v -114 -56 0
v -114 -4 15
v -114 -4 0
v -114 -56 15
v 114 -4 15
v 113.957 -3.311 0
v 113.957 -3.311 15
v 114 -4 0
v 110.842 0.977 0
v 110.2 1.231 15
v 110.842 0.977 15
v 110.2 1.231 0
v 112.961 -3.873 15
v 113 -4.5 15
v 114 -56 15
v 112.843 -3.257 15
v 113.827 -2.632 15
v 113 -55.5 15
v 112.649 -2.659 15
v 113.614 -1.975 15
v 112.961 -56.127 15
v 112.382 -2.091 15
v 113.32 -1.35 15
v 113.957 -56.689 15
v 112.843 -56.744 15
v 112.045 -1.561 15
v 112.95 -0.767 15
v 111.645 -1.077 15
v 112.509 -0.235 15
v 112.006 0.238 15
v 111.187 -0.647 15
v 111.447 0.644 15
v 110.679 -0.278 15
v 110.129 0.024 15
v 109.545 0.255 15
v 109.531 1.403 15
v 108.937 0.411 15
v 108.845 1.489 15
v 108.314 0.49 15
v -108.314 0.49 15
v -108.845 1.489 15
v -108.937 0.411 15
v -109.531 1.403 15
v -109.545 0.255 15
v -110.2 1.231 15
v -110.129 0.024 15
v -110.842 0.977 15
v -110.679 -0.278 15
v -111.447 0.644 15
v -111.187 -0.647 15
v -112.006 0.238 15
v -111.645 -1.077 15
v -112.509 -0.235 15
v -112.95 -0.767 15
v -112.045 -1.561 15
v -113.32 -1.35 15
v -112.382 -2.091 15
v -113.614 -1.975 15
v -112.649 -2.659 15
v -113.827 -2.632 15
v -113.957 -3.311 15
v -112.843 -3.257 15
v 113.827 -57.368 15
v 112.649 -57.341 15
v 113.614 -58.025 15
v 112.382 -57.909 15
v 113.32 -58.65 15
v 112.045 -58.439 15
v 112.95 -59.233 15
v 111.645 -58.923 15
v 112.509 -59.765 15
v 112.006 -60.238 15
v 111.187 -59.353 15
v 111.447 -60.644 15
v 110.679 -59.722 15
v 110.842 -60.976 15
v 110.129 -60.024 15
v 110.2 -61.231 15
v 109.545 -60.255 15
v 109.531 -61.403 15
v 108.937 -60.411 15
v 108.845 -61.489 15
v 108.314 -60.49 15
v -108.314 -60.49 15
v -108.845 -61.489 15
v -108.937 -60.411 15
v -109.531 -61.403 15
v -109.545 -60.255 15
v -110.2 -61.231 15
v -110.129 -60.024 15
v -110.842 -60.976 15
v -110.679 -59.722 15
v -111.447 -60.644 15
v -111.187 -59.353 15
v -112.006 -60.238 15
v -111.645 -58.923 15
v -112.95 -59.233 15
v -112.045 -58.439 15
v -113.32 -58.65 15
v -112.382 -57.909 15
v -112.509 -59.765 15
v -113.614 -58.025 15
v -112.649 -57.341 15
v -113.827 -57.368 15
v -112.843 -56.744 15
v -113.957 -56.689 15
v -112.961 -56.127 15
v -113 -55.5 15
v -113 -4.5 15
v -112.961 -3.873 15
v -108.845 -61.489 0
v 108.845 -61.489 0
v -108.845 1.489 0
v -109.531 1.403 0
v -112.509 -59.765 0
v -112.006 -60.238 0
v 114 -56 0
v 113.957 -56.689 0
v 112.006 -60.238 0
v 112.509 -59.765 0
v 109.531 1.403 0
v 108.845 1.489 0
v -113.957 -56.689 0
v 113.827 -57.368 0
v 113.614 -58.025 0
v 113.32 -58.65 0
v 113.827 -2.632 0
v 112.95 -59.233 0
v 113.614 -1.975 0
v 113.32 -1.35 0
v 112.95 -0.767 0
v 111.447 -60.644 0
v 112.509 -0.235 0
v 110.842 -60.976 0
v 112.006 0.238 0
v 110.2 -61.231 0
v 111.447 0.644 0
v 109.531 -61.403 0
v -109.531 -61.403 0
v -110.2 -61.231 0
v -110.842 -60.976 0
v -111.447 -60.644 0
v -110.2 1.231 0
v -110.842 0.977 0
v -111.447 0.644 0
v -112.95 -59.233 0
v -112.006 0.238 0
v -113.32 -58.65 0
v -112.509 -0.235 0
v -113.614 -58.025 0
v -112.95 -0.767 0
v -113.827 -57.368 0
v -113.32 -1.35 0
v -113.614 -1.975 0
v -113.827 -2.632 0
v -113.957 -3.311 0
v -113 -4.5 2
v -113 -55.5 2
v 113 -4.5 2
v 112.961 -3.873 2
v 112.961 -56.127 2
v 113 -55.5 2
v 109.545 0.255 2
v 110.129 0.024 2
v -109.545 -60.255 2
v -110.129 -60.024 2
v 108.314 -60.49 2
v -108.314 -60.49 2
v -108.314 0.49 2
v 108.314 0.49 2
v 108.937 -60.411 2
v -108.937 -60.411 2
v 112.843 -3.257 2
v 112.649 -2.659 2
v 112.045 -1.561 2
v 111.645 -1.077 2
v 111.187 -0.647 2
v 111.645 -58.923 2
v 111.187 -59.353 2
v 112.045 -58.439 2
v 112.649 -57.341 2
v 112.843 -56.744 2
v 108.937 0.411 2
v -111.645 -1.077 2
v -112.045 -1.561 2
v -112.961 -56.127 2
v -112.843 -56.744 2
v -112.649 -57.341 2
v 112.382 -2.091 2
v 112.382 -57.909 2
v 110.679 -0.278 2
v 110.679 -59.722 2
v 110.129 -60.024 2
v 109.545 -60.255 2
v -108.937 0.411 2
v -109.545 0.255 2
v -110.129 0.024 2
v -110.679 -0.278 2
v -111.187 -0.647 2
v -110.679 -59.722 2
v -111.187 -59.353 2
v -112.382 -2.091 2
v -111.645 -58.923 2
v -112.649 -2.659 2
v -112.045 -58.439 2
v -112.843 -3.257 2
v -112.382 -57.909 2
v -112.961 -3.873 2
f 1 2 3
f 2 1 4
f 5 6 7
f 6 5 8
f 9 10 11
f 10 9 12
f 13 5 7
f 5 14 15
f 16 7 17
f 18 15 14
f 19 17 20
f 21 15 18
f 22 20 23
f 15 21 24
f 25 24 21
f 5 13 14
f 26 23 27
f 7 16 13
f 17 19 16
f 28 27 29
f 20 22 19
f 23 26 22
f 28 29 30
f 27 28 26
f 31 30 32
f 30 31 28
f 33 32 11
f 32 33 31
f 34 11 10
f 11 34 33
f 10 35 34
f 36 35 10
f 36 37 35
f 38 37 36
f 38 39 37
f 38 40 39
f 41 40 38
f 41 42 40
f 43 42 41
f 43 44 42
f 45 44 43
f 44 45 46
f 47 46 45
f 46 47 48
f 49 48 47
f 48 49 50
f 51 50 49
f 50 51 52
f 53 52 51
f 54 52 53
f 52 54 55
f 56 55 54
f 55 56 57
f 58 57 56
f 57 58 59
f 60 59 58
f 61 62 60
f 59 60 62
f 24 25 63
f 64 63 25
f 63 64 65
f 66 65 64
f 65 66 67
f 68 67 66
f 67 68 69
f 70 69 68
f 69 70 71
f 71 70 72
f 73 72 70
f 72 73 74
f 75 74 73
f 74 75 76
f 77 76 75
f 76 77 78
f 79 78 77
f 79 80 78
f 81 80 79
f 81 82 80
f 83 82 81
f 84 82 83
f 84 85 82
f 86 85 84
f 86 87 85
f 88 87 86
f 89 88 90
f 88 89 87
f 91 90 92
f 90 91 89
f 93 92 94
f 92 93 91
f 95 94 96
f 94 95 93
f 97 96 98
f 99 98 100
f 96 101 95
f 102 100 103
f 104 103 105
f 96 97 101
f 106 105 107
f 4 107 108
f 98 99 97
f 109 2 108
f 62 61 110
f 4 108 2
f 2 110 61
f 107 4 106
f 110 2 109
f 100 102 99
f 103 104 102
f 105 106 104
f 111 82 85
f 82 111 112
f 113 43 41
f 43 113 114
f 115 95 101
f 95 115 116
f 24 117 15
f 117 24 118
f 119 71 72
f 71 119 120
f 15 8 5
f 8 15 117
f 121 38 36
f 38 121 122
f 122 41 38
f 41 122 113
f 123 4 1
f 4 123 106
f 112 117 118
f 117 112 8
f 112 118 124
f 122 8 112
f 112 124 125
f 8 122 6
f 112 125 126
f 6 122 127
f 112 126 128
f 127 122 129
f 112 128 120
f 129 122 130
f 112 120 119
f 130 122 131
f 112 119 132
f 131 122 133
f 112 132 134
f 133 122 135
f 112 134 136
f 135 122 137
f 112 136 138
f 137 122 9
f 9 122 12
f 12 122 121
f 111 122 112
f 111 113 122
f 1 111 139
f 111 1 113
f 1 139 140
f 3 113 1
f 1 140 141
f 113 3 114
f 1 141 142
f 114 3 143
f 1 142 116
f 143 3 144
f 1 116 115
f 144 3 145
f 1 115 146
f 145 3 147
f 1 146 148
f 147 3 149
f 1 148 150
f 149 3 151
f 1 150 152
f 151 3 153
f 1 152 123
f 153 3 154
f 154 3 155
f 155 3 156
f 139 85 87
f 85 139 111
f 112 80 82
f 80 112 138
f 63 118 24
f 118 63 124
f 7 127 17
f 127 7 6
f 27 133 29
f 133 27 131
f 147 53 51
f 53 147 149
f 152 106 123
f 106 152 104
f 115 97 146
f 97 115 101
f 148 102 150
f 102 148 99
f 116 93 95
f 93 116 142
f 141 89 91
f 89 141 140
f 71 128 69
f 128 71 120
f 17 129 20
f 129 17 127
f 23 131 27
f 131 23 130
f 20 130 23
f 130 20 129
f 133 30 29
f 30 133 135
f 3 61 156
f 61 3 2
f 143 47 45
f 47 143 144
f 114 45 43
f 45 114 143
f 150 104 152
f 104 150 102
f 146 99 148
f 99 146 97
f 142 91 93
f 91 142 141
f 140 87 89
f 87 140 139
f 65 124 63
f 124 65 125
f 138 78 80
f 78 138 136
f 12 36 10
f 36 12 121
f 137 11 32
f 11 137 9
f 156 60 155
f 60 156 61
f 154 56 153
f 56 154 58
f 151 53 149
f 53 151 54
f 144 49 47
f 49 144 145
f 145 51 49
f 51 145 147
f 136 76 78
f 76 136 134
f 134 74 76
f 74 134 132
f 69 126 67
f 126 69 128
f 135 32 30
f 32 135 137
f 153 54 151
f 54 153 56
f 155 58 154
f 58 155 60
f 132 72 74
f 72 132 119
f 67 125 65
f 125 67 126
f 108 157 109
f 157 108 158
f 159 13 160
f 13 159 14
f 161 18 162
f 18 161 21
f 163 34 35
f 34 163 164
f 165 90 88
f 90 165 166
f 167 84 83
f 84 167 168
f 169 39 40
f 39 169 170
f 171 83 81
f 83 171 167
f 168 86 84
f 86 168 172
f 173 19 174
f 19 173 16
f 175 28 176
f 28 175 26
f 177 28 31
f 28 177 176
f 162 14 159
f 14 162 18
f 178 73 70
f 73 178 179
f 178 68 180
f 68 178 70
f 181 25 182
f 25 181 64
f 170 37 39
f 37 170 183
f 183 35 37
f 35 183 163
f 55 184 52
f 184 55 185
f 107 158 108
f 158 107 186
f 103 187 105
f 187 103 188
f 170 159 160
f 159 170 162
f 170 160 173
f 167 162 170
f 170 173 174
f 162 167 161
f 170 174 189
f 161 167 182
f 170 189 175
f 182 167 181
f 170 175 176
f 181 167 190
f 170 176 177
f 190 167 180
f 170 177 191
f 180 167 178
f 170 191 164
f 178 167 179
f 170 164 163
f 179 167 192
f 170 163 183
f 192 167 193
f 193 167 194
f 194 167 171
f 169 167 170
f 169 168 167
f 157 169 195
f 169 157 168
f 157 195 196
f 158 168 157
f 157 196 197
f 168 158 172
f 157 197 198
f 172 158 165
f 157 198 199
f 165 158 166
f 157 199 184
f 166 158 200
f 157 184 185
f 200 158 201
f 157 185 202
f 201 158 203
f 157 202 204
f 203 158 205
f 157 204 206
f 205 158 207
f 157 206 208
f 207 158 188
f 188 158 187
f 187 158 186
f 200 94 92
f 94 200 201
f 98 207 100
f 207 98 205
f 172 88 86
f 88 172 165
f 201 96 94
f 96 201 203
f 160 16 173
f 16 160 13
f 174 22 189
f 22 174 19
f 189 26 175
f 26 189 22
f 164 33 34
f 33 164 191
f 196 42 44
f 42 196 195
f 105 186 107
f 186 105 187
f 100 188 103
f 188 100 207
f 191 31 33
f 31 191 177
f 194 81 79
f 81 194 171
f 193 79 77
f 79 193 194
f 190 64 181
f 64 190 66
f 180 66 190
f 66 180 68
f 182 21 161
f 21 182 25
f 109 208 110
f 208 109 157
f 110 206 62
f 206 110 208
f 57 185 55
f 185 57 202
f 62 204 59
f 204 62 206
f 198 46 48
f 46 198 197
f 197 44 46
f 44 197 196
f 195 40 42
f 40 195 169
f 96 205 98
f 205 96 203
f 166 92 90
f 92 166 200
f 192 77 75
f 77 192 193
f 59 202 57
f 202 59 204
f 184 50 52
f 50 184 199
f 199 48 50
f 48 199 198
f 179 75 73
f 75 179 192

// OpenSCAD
$fn = 50;


difference() {
	union() {
		translate(v = [0, -30.0000000000, 0]) {
			hull() {
				translate(v = [-108.5000000000, 26.0000000000, 0]) {
					cylinder(h = 15, r = 5.5000000000);
				}
				translate(v = [108.5000000000, 26.0000000000, 0]) {
					cylinder(h = 15, r = 5.5000000000);
				}
				translate(v = [-108.5000000000, -26.0000000000, 0]) {
					cylinder(h = 15, r = 5.5000000000);
				}
				translate(v = [108.5000000000, -26.0000000000, 0]) {
					cylinder(h = 15, r = 5.5000000000);
				}
			}
		}
	}
	union() {
		translate(v = [0, -30.0000000000, 2]) {
			hull() {
				translate(v = [-108.0000000000, 25.5000000000, 0]) {
					cylinder(h = 30, r = 5);
				}
				translate(v = [108.0000000000, 25.5000000000, 0]) {
					cylinder(h = 30, r = 5);
				}
				translate(v = [-108.0000000000, -25.5000000000, 0]) {
					cylinder(h = 30, r = 5);
				}
				translate(v = [108.0000000000, -25.5000000000, 0]) {
					cylinder(h = 30, r = 5);
				}
			}
		}
	}
}
